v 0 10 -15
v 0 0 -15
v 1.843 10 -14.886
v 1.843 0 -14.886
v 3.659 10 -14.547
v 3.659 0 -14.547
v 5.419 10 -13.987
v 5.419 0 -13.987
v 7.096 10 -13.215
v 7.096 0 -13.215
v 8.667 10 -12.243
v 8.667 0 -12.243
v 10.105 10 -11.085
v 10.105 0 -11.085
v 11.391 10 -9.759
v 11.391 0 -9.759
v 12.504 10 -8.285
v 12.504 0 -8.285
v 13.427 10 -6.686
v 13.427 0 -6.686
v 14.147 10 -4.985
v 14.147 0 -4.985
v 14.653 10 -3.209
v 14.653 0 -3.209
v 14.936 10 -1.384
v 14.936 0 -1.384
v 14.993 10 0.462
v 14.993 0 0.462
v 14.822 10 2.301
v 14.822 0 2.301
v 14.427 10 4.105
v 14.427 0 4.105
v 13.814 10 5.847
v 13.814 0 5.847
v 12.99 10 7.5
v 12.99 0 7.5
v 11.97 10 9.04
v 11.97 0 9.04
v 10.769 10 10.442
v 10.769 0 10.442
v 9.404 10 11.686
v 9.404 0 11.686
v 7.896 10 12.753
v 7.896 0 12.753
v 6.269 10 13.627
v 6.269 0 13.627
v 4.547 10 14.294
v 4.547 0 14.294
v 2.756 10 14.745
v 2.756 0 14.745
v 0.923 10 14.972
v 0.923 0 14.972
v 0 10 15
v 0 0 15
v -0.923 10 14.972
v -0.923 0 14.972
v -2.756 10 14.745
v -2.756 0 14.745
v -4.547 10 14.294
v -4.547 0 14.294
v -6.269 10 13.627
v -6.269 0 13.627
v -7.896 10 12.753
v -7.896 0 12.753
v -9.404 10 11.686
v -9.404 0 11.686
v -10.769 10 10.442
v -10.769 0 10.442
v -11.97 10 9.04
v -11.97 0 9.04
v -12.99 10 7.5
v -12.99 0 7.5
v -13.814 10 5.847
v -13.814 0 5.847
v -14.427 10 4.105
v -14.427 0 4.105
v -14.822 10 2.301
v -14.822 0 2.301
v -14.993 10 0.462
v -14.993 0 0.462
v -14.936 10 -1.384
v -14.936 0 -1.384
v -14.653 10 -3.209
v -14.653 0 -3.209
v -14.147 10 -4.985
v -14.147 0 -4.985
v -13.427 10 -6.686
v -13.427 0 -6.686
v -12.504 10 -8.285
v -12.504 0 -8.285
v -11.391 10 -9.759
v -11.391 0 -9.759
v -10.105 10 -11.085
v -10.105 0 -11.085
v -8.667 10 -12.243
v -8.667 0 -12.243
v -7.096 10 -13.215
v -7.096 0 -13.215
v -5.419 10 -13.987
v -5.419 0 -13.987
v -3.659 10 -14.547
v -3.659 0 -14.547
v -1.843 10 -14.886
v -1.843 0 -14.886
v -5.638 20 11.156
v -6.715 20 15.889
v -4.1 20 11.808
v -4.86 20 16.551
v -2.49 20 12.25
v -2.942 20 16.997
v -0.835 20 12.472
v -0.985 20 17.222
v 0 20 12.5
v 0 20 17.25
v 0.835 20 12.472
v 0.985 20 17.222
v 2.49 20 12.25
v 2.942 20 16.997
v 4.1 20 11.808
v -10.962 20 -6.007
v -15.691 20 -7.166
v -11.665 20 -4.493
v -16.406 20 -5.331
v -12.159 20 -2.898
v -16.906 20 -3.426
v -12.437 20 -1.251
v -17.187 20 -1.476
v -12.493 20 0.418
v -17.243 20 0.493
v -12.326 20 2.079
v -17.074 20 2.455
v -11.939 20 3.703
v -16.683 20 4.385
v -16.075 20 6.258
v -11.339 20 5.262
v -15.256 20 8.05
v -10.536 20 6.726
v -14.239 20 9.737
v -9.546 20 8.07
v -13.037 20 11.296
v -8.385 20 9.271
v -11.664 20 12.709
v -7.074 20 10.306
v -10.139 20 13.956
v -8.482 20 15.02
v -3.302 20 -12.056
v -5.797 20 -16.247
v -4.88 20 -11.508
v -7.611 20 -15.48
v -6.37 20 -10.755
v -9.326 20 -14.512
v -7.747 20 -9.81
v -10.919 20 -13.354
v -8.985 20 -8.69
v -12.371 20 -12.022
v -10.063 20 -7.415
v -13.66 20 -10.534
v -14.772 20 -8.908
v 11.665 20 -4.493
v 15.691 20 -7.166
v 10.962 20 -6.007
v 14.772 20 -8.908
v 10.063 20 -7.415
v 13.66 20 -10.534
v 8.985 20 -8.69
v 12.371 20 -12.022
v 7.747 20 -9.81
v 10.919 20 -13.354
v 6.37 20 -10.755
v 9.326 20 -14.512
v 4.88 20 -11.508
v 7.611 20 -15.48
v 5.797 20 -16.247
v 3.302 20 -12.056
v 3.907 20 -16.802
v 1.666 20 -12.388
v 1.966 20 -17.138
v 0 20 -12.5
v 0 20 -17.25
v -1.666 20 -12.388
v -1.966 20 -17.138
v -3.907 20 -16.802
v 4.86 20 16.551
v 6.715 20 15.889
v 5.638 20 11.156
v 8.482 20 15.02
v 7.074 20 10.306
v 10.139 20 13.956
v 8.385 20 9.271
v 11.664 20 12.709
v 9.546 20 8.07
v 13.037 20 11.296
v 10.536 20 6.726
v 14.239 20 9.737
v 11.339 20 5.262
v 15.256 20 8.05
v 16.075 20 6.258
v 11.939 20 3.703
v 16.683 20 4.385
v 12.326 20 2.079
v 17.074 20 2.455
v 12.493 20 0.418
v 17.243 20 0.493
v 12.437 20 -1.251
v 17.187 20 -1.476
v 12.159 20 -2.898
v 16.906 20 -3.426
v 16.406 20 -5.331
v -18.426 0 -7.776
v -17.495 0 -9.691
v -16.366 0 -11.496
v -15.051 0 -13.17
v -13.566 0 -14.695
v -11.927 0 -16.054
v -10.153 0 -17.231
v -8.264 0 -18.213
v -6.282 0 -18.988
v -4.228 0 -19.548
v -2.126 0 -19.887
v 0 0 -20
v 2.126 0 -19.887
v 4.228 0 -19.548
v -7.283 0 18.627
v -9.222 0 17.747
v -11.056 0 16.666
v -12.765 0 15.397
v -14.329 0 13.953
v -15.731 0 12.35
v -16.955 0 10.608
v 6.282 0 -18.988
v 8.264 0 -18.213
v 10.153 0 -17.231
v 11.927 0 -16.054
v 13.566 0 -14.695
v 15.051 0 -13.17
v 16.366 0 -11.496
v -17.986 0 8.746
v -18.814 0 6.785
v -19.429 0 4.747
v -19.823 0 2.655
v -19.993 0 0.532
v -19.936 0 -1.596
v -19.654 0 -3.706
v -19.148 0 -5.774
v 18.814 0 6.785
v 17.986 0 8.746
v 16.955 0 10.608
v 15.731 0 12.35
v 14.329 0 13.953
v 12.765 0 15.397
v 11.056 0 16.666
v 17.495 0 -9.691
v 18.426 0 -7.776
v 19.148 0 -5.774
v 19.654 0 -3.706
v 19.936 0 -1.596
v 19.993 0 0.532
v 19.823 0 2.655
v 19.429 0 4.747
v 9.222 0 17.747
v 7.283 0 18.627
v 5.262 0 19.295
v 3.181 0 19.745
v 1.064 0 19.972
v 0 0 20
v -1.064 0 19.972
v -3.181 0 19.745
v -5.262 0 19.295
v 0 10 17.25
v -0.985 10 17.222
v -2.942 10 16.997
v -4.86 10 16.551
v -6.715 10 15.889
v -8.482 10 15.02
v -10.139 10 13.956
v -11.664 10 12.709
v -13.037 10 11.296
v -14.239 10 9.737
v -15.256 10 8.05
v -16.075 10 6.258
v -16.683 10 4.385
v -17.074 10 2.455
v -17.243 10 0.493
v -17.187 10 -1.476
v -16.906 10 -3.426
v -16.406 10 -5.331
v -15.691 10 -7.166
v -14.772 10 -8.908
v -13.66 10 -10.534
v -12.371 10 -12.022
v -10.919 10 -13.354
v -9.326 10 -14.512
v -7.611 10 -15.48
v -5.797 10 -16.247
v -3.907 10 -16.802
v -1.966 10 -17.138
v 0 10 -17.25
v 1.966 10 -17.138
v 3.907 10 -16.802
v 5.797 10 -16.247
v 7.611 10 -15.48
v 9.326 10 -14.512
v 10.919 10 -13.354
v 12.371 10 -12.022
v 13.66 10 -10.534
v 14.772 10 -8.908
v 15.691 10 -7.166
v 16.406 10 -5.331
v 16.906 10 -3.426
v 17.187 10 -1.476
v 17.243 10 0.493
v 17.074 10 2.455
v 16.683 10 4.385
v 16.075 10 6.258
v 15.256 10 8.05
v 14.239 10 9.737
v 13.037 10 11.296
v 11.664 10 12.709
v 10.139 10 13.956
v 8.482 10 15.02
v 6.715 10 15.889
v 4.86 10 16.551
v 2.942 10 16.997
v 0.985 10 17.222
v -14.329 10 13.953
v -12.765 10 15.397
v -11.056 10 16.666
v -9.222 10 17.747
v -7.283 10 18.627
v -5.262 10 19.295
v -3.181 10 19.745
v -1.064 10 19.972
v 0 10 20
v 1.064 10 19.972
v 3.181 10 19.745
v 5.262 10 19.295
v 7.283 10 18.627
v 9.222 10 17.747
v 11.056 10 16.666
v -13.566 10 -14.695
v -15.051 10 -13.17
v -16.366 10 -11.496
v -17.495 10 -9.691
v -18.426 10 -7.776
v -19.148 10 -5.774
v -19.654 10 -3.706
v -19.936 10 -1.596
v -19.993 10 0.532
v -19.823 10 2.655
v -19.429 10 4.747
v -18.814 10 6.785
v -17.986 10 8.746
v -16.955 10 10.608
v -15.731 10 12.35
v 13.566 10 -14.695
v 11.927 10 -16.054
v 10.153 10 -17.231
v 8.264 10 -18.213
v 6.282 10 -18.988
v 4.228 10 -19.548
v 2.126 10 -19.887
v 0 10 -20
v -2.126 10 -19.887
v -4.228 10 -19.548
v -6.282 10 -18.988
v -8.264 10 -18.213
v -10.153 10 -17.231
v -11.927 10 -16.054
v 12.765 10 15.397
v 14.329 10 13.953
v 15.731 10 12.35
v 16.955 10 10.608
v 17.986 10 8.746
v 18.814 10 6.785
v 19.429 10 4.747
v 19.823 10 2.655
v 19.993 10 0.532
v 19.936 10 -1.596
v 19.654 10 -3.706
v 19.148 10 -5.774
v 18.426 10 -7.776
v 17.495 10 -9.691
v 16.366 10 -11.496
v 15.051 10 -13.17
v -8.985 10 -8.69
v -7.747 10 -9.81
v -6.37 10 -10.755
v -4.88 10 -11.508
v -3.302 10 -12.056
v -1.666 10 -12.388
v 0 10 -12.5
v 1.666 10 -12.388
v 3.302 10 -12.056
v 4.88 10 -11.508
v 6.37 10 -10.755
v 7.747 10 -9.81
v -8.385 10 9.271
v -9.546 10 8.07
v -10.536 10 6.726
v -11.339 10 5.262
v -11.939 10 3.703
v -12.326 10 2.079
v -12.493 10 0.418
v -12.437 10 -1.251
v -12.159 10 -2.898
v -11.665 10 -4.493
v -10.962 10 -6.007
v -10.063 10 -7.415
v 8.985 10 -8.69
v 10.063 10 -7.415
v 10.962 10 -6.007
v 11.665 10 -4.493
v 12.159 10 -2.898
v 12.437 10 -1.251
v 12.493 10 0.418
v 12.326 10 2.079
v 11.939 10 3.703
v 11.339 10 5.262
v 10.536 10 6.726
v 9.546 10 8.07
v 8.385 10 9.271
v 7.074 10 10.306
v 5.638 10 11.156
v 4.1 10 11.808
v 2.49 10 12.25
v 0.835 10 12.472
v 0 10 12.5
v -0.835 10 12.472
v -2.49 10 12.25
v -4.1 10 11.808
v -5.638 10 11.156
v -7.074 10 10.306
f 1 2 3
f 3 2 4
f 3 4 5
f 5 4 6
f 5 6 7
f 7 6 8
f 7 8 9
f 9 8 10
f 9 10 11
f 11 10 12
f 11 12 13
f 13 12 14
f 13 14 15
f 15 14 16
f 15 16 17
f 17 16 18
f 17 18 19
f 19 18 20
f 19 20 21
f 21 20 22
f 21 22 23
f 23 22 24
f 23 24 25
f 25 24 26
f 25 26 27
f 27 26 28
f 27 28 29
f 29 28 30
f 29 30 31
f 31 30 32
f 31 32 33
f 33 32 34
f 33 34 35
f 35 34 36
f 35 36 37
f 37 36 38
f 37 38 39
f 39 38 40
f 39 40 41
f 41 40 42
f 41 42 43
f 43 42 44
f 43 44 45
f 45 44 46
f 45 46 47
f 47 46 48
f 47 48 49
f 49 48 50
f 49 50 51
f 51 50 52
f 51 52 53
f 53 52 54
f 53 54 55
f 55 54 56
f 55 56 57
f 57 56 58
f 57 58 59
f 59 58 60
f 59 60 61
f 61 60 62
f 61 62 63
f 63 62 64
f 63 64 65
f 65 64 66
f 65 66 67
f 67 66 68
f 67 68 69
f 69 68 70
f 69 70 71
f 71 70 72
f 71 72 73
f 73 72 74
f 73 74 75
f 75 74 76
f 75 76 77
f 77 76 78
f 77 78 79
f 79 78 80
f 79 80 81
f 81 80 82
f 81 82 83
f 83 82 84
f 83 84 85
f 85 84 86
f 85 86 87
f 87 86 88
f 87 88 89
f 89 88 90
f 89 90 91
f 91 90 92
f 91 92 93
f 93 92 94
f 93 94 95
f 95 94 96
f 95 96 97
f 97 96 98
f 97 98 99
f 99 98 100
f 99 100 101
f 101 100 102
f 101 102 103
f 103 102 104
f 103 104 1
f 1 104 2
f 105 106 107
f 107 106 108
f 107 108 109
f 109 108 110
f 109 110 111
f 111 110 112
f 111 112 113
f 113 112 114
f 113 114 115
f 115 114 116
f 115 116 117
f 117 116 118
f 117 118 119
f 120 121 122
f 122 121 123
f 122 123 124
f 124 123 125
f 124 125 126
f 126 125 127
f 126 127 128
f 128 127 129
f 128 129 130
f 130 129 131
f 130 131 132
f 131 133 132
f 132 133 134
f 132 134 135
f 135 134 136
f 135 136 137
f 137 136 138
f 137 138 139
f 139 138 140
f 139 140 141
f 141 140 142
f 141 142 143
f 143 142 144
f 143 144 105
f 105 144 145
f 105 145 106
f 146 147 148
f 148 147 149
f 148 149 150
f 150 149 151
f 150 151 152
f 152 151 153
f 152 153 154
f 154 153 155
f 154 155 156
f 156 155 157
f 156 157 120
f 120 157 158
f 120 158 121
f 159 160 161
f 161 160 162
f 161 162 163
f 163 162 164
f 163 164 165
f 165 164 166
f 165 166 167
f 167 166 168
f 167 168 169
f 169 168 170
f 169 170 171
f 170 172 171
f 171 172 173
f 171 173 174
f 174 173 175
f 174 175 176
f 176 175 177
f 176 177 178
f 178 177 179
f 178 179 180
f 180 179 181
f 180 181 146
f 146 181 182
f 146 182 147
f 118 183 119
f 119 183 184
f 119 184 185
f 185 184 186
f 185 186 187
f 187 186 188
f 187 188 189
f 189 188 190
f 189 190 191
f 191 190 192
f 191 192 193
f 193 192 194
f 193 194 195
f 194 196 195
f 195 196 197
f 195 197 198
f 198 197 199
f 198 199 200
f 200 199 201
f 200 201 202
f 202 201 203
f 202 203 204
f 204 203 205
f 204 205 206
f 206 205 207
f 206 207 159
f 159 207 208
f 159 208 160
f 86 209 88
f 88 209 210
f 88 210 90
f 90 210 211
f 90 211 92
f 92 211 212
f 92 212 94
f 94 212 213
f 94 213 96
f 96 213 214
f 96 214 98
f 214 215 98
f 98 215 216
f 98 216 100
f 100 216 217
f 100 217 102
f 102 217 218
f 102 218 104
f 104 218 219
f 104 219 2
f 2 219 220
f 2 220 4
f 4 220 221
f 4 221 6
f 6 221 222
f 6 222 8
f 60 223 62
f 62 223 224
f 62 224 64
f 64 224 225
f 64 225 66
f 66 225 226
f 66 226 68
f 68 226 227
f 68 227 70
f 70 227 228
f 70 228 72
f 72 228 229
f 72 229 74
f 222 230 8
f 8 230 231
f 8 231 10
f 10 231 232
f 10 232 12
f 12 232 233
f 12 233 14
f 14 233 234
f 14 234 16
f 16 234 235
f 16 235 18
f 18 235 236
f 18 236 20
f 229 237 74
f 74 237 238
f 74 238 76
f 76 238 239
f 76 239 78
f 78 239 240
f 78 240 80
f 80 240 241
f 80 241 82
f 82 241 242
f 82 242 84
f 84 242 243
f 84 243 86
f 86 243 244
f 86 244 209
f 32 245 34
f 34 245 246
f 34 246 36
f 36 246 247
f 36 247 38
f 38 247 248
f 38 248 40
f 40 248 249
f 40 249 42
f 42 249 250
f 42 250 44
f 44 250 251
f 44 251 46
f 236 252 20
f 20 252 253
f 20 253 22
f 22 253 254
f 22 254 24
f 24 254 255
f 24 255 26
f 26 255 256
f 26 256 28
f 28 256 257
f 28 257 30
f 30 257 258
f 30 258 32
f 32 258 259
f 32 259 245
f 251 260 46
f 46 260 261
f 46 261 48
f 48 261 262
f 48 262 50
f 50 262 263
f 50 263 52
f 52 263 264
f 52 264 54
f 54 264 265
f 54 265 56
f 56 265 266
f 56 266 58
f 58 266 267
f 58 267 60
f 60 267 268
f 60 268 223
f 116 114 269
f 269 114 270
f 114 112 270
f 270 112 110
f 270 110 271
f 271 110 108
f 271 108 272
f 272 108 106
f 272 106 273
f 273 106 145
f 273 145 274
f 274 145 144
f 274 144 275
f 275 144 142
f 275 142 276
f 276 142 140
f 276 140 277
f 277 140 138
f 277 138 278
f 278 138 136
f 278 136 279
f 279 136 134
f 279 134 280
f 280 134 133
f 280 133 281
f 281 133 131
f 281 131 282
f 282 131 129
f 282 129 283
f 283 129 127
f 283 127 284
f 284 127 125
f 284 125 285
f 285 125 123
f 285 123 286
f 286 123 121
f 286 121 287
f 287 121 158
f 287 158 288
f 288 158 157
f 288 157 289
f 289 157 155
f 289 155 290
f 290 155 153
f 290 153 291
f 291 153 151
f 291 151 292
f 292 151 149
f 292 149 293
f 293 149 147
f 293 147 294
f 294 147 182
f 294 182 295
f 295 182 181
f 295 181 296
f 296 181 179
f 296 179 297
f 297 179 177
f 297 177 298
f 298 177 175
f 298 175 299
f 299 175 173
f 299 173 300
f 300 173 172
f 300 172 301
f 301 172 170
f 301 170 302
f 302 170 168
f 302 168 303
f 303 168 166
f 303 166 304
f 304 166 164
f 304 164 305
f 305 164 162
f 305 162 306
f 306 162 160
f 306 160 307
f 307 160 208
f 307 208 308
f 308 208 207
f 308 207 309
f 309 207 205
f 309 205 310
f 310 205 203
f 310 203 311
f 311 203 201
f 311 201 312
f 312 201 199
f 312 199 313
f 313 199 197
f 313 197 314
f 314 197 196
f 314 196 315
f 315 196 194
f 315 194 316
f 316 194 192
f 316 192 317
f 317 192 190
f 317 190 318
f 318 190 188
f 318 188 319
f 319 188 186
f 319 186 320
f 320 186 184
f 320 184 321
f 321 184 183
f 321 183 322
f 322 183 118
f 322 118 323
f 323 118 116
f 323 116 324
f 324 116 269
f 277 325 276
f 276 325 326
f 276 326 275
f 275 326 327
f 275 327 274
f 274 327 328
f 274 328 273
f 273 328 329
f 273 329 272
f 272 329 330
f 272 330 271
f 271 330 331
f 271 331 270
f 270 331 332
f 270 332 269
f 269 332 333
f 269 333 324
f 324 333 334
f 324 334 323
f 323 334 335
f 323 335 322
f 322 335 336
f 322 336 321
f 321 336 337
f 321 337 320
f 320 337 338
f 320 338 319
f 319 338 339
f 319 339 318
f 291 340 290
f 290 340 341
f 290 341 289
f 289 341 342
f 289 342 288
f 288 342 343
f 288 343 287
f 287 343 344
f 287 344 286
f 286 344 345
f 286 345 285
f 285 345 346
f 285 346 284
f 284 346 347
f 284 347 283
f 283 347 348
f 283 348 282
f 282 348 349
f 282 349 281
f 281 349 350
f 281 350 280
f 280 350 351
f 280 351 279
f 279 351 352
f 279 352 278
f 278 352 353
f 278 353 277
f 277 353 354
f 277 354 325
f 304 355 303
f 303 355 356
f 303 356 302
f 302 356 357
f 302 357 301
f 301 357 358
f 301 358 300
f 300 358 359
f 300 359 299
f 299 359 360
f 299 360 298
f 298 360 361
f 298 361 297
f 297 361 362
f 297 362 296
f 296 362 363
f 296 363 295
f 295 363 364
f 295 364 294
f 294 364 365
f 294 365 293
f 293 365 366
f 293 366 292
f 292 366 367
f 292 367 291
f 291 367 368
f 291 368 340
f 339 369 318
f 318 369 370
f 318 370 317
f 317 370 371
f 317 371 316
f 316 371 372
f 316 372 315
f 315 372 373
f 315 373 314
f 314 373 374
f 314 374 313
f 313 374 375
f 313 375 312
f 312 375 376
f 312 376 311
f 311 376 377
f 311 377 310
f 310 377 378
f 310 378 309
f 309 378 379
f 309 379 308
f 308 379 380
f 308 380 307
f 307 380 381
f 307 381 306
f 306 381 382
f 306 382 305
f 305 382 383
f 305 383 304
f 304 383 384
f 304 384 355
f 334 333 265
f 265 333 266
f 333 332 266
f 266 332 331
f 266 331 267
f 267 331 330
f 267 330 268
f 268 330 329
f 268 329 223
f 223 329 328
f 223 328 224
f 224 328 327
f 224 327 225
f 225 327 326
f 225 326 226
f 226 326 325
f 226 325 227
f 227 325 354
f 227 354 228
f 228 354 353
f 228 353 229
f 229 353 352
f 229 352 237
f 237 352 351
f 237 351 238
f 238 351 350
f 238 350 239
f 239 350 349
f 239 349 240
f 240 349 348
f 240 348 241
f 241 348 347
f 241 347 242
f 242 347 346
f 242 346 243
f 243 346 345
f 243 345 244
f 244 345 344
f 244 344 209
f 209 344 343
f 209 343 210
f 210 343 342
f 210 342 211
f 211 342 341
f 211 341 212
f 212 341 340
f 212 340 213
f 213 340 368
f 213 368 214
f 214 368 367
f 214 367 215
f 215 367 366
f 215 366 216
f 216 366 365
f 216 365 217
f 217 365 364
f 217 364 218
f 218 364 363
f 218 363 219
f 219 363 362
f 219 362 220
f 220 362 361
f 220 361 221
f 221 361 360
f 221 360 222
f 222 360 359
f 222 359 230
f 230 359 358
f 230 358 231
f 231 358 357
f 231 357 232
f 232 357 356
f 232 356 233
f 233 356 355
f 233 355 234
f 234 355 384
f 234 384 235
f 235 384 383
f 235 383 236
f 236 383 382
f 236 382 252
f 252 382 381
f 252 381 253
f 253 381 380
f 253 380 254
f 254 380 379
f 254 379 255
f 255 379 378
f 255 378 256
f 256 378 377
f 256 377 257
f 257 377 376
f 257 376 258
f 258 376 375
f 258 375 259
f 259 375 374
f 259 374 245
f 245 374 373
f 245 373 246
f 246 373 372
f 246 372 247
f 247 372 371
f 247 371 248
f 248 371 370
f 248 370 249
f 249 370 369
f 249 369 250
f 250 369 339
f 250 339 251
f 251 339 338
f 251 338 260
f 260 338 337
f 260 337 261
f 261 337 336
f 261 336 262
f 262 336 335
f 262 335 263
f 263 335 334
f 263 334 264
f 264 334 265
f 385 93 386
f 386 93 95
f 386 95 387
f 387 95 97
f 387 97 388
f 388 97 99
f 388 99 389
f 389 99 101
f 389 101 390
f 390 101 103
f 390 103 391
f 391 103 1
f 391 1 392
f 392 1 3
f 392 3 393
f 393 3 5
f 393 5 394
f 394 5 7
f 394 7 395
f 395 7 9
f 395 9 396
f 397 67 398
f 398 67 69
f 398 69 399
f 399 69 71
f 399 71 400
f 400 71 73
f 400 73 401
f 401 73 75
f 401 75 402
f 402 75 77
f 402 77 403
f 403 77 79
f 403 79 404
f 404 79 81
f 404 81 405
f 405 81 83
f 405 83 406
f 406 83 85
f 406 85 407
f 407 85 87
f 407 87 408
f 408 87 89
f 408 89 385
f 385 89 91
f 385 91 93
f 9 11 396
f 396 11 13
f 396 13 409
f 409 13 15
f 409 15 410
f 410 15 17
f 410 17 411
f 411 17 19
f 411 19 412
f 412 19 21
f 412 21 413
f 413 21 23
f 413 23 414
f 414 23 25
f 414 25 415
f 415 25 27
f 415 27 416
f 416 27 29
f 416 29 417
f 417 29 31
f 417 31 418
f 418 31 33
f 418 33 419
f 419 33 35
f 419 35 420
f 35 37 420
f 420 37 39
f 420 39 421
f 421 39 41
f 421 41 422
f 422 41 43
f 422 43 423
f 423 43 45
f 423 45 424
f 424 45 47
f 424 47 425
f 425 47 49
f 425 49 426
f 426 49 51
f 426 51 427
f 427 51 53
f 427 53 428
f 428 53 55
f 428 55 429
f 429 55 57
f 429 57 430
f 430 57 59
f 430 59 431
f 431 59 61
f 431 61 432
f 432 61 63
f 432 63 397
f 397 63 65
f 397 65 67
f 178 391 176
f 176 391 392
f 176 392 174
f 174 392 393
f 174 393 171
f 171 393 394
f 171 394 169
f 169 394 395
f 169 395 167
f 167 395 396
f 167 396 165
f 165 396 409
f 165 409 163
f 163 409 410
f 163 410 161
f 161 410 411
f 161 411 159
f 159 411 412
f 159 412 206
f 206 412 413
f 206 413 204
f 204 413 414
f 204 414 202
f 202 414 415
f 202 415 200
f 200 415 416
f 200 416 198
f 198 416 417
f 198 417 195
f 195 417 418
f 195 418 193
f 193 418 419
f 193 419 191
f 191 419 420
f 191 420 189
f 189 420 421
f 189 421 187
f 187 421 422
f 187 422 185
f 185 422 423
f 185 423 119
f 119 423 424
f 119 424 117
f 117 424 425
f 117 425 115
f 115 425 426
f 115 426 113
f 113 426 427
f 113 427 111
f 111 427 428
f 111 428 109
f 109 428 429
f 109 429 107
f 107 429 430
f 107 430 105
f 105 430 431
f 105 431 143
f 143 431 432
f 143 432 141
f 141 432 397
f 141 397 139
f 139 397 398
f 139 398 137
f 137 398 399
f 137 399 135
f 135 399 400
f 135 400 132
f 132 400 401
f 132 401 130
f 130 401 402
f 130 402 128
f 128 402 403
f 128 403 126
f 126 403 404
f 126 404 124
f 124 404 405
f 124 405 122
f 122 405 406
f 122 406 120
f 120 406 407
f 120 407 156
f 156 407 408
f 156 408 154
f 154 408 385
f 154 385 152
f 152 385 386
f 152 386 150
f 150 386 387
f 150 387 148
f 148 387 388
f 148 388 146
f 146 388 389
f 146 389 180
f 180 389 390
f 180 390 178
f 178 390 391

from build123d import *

# Parameters (mm, degrees)
SKETCH2_R           = 17.25
SKETCH2_R_2         = 15
BOSS_EXTRUDE4_DEPTH = 20
SKETCH4_R           = 20
SKETCH4_R_2         = 15
BOSS_EXTRUDE6_DEPTH = 10
BOSS_EXTRUDE7_START = 10
SKETCH5_R           = 15
SKETCH5_R_2         = 12.5
BOSS_EXTRUDE7_DEPTH = 10


with BuildPart() as part:
    # Sketch2 → Boss-Extrude4 (new body)
    with BuildSketch(Plane(origin=(0, 0, 0), x_dir=(1, 0, 0), z_dir=(0, 1, 0))):
        Circle(SKETCH2_R)
        Circle(SKETCH2_R_2, mode=Mode.SUBTRACT)
    extrude(amount=BOSS_EXTRUDE4_DEPTH)

    # Sketch4 → Boss-Extrude6 (add)
    with BuildSketch(Plane(origin=(0, 0, 0), x_dir=(1, 0, 0), z_dir=(0, 1, 0))):
        Circle(SKETCH4_R)
        Circle(SKETCH4_R_2, mode=Mode.SUBTRACT)
    extrude(amount=BOSS_EXTRUDE6_DEPTH)

    # Sketch5 → Boss-Extrude7 (add)
    with BuildSketch(Plane(origin=(0, 0, 0), x_dir=(1, 0, 0), z_dir=(0, 1, 0)).offset(BOSS_EXTRUDE7_START)):
        Circle(SKETCH5_R)
        Circle(SKETCH5_R_2, mode=Mode.SUBTRACT)
    extrude(amount=BOSS_EXTRUDE7_DEPTH)


solid = part.part
